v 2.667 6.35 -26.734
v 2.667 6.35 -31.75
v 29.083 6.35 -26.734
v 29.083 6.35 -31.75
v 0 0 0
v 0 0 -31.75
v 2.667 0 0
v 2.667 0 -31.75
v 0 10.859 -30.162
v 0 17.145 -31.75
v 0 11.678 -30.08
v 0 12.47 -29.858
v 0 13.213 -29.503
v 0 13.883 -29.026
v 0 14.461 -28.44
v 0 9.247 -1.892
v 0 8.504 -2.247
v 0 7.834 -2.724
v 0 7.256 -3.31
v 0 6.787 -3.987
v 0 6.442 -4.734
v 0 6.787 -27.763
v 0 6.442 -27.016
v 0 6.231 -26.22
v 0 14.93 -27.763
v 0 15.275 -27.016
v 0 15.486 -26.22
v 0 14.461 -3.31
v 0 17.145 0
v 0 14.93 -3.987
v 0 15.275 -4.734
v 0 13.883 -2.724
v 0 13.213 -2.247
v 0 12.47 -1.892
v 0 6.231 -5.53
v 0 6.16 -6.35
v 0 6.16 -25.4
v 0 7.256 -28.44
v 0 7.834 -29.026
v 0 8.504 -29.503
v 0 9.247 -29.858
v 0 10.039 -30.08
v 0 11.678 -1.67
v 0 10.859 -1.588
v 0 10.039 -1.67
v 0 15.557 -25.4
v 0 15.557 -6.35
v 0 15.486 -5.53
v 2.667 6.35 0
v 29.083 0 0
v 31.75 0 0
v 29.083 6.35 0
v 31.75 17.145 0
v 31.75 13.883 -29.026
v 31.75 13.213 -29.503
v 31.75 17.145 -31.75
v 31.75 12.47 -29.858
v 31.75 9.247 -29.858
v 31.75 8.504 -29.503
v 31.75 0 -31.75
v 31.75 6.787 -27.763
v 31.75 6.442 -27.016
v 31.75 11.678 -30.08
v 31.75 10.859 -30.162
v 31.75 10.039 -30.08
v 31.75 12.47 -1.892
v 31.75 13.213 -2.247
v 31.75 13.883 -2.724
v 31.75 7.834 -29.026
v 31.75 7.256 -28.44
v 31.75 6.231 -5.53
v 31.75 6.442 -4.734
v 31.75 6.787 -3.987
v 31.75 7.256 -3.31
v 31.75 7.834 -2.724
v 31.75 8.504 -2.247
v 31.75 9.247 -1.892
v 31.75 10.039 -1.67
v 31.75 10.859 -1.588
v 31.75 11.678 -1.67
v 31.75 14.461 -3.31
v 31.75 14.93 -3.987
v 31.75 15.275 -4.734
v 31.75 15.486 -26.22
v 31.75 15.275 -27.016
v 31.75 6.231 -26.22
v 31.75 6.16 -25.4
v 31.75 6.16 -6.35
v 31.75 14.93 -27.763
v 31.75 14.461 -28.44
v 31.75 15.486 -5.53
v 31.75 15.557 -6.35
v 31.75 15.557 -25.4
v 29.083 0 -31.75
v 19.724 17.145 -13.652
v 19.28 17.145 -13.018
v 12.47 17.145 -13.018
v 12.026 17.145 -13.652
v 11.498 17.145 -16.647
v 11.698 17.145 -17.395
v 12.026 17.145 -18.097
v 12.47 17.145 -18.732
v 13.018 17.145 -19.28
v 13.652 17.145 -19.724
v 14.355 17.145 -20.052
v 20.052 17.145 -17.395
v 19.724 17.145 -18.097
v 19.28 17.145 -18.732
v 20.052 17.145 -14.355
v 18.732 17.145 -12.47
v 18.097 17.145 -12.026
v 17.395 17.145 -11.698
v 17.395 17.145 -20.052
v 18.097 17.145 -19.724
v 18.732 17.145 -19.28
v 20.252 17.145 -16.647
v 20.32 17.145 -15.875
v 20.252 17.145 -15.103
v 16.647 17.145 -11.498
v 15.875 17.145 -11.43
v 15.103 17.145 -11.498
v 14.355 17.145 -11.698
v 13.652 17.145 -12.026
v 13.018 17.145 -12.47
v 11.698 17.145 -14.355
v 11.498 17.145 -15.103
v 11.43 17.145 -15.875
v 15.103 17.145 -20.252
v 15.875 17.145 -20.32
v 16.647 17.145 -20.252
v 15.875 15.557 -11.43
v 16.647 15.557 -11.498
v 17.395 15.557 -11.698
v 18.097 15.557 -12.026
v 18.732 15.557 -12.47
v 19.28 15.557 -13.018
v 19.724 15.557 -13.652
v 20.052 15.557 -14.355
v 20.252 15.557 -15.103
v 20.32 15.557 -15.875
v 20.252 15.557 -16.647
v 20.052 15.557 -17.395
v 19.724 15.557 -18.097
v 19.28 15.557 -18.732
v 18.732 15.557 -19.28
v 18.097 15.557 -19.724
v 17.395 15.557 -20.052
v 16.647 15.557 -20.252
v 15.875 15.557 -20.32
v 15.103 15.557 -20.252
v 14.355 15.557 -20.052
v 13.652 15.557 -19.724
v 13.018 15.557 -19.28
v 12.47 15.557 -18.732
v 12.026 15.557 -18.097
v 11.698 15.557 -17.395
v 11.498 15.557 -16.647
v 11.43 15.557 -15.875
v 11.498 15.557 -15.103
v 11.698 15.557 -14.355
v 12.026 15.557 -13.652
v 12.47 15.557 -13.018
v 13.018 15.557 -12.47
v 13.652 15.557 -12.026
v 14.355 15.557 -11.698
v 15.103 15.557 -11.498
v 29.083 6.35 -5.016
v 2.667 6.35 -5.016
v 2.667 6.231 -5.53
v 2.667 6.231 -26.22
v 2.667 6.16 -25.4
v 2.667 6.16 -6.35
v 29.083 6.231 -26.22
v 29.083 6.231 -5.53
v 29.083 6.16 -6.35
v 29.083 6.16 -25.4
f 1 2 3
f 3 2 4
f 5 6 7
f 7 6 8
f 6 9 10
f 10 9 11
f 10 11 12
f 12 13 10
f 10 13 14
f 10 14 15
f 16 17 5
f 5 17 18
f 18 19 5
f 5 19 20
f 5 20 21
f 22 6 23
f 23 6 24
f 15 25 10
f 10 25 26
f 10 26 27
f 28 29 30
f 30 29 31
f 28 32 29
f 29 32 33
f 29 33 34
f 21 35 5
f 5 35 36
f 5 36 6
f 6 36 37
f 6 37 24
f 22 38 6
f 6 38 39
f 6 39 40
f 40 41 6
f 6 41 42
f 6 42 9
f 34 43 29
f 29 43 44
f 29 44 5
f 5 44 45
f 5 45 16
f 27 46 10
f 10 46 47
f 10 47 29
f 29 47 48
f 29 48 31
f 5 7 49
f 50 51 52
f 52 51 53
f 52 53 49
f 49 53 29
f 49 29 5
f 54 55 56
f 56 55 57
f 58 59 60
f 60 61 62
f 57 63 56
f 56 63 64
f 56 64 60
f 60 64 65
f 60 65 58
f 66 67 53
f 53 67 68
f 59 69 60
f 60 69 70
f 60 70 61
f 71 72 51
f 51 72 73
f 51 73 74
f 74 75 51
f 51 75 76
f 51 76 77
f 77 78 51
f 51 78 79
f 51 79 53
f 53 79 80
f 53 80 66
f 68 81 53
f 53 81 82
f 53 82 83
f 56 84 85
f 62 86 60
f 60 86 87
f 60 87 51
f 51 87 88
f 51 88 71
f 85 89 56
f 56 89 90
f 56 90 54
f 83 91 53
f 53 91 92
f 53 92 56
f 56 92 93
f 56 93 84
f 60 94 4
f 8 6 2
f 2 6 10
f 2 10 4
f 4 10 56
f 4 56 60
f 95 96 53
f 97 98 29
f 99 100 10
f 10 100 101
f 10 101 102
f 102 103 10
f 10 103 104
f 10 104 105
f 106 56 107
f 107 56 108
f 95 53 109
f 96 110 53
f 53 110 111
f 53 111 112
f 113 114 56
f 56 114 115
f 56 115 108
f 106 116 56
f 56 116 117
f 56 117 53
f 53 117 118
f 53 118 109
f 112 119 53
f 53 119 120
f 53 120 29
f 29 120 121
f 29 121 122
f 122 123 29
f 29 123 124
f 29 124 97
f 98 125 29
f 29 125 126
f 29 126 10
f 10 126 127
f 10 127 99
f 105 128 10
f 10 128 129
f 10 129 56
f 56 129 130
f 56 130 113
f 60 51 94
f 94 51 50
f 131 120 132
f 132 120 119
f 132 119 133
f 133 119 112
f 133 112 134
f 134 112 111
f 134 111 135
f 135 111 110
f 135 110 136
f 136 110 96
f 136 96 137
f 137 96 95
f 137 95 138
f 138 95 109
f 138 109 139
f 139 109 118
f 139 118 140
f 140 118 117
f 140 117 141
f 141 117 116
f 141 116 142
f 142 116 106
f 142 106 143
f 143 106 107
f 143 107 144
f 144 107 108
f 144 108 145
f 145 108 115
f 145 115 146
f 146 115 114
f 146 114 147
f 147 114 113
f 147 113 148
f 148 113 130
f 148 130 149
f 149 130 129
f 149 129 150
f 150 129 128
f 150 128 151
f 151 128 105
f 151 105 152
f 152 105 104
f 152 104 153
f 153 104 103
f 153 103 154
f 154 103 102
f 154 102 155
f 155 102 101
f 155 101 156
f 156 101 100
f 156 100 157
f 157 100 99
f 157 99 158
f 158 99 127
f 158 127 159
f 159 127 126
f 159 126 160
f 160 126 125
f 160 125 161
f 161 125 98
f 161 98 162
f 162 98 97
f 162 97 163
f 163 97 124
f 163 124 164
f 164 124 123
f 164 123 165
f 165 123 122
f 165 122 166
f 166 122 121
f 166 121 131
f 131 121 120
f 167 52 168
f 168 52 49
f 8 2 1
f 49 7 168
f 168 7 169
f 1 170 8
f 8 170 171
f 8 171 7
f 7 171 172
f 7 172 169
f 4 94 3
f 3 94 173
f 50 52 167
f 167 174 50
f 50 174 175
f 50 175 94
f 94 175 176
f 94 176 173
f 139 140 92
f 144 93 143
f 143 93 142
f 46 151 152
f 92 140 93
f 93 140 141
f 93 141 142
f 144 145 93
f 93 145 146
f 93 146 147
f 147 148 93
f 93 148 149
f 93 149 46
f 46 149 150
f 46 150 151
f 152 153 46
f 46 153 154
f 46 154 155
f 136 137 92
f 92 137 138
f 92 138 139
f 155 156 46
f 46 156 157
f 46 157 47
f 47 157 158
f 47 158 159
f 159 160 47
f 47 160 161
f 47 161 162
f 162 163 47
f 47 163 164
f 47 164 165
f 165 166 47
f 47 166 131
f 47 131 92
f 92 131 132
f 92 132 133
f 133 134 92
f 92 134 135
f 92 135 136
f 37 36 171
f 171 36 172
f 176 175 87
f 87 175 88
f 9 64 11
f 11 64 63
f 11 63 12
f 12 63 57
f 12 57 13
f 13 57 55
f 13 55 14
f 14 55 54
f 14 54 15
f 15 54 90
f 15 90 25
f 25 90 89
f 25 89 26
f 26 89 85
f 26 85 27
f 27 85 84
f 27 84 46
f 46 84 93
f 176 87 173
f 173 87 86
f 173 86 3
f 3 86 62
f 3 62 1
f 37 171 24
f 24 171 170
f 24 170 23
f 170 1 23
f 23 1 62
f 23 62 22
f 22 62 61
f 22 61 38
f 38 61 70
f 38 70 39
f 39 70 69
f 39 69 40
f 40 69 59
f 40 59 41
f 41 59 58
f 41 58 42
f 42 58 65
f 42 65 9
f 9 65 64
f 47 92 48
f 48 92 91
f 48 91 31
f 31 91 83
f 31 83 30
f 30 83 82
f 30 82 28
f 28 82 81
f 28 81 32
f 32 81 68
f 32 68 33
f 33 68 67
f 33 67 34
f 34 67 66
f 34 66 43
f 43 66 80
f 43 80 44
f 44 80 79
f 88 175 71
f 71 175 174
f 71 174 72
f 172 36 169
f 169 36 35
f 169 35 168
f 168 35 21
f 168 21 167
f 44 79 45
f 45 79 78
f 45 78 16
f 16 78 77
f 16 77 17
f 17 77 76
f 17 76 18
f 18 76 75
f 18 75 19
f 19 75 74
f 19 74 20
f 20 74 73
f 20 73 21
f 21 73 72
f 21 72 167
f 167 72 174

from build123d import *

# Parameters (mm, degrees)
SKETCH1_W           = 31.75
SKETCH1_H           = 31.75
BOSS_EXTRUDE1_DEPTH = 17.145
SKETCH2_R           = 4.445
CUT_EXTRUDE1_DEPTH  = 49.063250254
SKETCH3_W           = 26.416
SKETCH3_H           = 6.35
CUT_EXTRUDE2_DEPTH  = 49.063250254
SKETCH4_W           = 28.575
SKETCH4_H           = 9.398
CUT_EXTRUDE3_DEPTH  = 49.063250254
FILLET2_DEPTH       = 31.75
FILLET2_2_DEPTH     = 2.667
FILLET2_START       = 29.083
FILLET2_3_DEPTH     = 2.667


with BuildPart() as part:
    # Sketch1 → Boss-Extrude1 (new body)
    with BuildSketch(Plane(origin=(0, 0, 0), x_dir=(1, 0, 0), z_dir=(0, 1, 0))):
        with Locations((15.875, 15.875)):
            Rectangle(SKETCH1_W, SKETCH1_H)
    extrude(amount=BOSS_EXTRUDE1_DEPTH)

    # Sketch2 → Cut-Extrude1 (cut, through all)
    with BuildSketch(Plane(origin=(0, 17.145, 0), x_dir=(1, 0, 0), z_dir=(0, 1, 0))):
        with Locations(Location((15.875, 15.875, 0), (0, 0, 270))):
            Circle(SKETCH2_R)
    extrude(amount=-CUT_EXTRUDE1_DEPTH, mode=Mode.SUBTRACT)

    # Sketch3 → Cut-Extrude2 (cut, through all)
    with BuildSketch(Plane.XY):
        with Locations((15.875, 3.175)):
            Rectangle(SKETCH3_W, SKETCH3_H)
    extrude(amount=-CUT_EXTRUDE2_DEPTH, mode=Mode.SUBTRACT)

    # Sketch4 → Cut-Extrude3 (cut, through all)
    with BuildSketch(Plane.ZY):
        with Locations((-15.875, 10.8585)):
            Rectangle(SKETCH4_W, SKETCH4_H)
    extrude(amount=-CUT_EXTRUDE3_DEPTH, mode=Mode.SUBTRACT)

    # Fillet2: read off the stored shape, not the designer's step
    # Fillet2 outline → Fillet2 (add)
    with BuildSketch(Plane.YZ):
        with BuildLine():
            Line((6.35, -26.7335), (6.35, -30.1625))
            Line((6.35, -30.1625), (15.5575, -30.1625))
            Line((15.5575, -30.1625), (15.5575, -25.4))
            ThreePointArc((15.5575, -25.4), (14.184972345, -28.745070067), (10.8585, -30.162076648))
            ThreePointArc((10.8585, -30.162076648), (8.039162939, -29.190864906), (6.35, -26.7335))
        make_face()
        with BuildLine():
            ThreePointArc((10.8585, -1.587923352), (14.184972345, -3.004929933), (15.5575, -6.35))
            Line((15.5575, -6.35), (15.5575, -1.5875))
            Line((15.5575, -1.5875), (6.35, -1.5875))
            Line((6.35, -1.5875), (6.35, -5.0165))
            ThreePointArc((6.35, -5.0165), (8.039162939, -2.559135094), (10.8585, -1.587923352))
        make_face()
    extrude(amount=FILLET2_DEPTH)

    # Fillet2 2 outline → Fillet2 2 (add)
    with BuildSketch(Plane.YZ):
        with BuildLine():
            Line((6.1595, -30.1625), (6.35, -30.1625))
            Line((6.35, -30.1625), (6.35, -26.7335))
            ThreePointArc((6.35, -26.7335), (6.207365536, -26.073519209), (6.1595, -25.4))
            Line((6.1595, -25.4), (6.1595, -30.1625))
        make_face()
        with BuildLine():
            Line((6.1595, -1.5875), (6.1595, -6.35))
            ThreePointArc((6.1595, -6.35), (6.207365536, -5.676480791), (6.35, -5.0165))
            Line((6.35, -5.0165), (6.35, -1.5875))
            Line((6.35, -1.5875), (6.1595, -1.5875))
        make_face()
    extrude(amount=FILLET2_2_DEPTH)

    # Fillet2 3 outline → Fillet2 3 (add)
    with BuildSketch(Plane.YZ.offset(FILLET2_START)):
        with BuildLine():
            Line((6.1595, -30.1625), (6.35, -30.1625))
            Line((6.35, -30.1625), (6.35, -26.7335))
            ThreePointArc((6.35, -26.7335), (6.207365536, -26.073519209), (6.1595, -25.4))
            Line((6.1595, -25.4), (6.1595, -30.1625))
        make_face()
        with BuildLine():
            Line((6.1595, -1.5875), (6.1595, -6.35))
            ThreePointArc((6.1595, -6.35), (6.207365536, -5.676480791), (6.35, -5.0165))
            Line((6.35, -5.0165), (6.35, -1.5875))
            Line((6.35, -1.5875), (6.1595, -1.5875))
        make_face()
    extrude(amount=FILLET2_3_DEPTH)


solid = part.part
